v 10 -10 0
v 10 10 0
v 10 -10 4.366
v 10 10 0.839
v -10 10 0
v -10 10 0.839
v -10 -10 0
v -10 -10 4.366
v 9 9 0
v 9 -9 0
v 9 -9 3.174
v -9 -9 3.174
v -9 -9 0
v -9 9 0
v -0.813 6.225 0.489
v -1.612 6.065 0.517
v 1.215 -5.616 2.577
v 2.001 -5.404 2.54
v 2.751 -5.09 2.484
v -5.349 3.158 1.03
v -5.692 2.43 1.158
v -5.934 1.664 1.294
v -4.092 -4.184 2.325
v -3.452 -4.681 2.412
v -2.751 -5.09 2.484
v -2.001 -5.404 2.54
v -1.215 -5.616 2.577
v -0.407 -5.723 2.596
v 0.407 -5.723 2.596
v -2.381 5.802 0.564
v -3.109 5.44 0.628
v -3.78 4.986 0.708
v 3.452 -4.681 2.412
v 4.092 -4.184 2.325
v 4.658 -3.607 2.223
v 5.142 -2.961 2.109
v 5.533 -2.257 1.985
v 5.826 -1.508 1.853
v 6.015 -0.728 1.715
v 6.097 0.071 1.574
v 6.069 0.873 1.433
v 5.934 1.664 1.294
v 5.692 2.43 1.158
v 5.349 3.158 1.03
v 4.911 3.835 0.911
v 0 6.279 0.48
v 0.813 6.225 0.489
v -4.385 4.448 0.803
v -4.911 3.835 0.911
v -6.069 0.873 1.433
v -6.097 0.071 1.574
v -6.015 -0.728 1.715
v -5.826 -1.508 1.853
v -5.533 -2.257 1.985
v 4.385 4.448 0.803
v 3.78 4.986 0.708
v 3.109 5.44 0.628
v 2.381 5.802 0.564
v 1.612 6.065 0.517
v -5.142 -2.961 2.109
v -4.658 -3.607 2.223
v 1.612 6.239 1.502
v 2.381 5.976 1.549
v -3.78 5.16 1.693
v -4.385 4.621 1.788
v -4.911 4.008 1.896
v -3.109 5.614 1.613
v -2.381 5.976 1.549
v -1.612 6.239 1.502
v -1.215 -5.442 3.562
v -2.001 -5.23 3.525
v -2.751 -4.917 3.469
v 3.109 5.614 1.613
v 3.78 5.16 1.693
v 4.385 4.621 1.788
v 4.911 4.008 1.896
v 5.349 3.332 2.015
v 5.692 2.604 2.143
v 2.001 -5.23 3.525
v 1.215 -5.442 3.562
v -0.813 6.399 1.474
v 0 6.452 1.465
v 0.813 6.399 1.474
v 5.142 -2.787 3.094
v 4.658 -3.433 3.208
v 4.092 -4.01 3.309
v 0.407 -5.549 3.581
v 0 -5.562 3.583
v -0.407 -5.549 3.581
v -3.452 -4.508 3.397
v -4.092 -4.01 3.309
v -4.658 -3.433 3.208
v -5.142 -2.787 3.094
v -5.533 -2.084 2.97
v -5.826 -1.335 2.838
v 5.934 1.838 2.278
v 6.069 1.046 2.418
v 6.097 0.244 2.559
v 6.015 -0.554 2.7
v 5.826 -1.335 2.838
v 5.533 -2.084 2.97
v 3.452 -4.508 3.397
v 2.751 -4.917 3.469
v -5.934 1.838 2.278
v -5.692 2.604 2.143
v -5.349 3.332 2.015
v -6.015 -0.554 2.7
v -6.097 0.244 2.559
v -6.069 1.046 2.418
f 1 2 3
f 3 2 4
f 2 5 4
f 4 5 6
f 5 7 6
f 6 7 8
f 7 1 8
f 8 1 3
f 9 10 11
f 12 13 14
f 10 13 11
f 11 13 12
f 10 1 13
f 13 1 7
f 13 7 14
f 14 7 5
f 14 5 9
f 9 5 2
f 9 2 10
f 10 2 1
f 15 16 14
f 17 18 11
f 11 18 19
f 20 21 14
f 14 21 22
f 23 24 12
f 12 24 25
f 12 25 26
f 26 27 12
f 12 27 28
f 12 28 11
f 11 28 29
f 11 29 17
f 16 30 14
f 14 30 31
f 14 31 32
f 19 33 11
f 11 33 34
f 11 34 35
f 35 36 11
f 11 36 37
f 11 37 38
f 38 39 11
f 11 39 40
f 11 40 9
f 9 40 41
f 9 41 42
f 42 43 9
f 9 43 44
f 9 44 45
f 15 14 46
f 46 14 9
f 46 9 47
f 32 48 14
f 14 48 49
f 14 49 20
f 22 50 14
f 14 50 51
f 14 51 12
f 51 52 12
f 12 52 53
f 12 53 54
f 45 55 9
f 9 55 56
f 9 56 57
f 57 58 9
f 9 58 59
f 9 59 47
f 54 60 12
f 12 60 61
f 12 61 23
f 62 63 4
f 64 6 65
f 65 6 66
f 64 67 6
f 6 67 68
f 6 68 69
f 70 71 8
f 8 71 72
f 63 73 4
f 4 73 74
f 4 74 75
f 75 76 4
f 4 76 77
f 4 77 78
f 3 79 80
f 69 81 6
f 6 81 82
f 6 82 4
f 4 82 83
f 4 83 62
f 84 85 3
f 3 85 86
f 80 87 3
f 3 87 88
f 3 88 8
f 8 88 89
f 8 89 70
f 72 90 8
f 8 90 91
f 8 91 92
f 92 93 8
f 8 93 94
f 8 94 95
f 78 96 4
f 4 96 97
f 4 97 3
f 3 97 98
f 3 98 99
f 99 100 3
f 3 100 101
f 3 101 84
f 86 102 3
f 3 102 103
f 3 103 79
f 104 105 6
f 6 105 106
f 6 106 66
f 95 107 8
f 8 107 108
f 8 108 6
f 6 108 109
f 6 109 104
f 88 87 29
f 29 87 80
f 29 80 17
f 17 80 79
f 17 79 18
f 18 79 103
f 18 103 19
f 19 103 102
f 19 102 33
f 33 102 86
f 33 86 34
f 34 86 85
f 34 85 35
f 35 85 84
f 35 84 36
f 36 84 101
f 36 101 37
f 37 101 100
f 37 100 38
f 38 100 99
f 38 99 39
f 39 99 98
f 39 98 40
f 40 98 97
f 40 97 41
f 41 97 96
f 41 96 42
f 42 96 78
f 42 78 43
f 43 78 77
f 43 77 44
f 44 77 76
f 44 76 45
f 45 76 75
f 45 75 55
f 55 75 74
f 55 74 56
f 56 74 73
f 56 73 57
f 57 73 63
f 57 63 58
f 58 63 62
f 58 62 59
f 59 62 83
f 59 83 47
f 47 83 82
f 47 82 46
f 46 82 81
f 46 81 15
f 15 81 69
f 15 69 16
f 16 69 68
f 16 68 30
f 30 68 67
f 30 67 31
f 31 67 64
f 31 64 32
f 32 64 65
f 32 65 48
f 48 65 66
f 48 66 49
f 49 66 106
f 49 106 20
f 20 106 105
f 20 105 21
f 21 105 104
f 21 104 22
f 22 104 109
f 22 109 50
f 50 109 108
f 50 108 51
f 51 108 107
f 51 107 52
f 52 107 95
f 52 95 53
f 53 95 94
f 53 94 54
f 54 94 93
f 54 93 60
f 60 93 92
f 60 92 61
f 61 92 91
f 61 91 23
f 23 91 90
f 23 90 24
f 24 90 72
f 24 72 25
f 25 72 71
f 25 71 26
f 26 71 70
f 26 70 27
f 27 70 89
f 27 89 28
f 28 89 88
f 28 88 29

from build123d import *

# Parameters (mm, degrees)
SKETCH1_W               = 20
SKETCH1_H               = 20
SKETCH1_W_2             = 18
SKETCH1_H_2             = 18
BOSS_EXTRUDE1_DEPTH     = 10
BOSS_EXTRUDE3_REACH     = 26.495
CUT_EXTRUDE1_DEPTH      = 25.494897428
CUT_EXTRUDE1_DEPTH_BACK = 25.494897428
SKETCH5_R               = 6.1
CUT_EXTRUDE2_DEPTH      = 10


with BuildPart() as part:
    # Sketch1 → Boss-Extrude1 (new body)
    with BuildSketch(Plane.XY):
        Rectangle(SKETCH1_W, SKETCH1_H)
        Rectangle(SKETCH1_W_2, SKETCH1_H_2, mode=Mode.SUBTRACT)
    extrude(amount=BOSS_EXTRUDE1_DEPTH)

    # Sketch3 → Boss-Extrude3 (add, up to next)
    with BuildSketch(Plane(origin=(10, 0, 0), x_dir=(0, 0, -1), z_dir=(1, 0, 0)), mode=Mode.PRIVATE) as boss_extrude3_sk1:
        Polygon((0, 9), (-3.350212633, -10), (-4.365639245, -10), (-1.015426612, 9), align=None)
    boss_extrude3_tool1 = extrude(boss_extrude3_sk1.sketch, amount=-BOSS_EXTRUDE3_REACH, mode=Mode.PRIVATE) - part.part
    add(boss_extrude3_tool1.solids().sort_by_distance((10, -0.5, 2.18282))[0])

    # Sketch4 → Cut-Extrude1 (cut, two sides: drawn at the far end of the back side and taken through both)
    with BuildSketch(Plane.ZY.offset(10).offset(-CUT_EXTRUDE1_DEPTH_BACK)):
        Polygon((-8.537287031, 63.176131209), (0.839099631, 10), (4.365639245, -10), (13.742025907, -63.176131209), (120.094288326, -44.423357885), (97.814975388, 81.928904533), align=None)
    extrude(amount=CUT_EXTRUDE1_DEPTH + CUT_EXTRUDE1_DEPTH_BACK, mode=Mode.SUBTRACT)

    # Sketch5 → Cut-Extrude2 (cut)
    with BuildSketch(Plane(origin=(0, 0.271383206, 1.539090645), x_dir=(-1, 0, 0), z_dir=(0, -0.17364817766692345, -0.9848077530122092))):
        with Locations(Location((0, 0, 0), (0, 0, 90))):
            Circle(SKETCH5_R)
    extrude(amount=-CUT_EXTRUDE2_DEPTH, mode=Mode.SUBTRACT)


solid = part.part
